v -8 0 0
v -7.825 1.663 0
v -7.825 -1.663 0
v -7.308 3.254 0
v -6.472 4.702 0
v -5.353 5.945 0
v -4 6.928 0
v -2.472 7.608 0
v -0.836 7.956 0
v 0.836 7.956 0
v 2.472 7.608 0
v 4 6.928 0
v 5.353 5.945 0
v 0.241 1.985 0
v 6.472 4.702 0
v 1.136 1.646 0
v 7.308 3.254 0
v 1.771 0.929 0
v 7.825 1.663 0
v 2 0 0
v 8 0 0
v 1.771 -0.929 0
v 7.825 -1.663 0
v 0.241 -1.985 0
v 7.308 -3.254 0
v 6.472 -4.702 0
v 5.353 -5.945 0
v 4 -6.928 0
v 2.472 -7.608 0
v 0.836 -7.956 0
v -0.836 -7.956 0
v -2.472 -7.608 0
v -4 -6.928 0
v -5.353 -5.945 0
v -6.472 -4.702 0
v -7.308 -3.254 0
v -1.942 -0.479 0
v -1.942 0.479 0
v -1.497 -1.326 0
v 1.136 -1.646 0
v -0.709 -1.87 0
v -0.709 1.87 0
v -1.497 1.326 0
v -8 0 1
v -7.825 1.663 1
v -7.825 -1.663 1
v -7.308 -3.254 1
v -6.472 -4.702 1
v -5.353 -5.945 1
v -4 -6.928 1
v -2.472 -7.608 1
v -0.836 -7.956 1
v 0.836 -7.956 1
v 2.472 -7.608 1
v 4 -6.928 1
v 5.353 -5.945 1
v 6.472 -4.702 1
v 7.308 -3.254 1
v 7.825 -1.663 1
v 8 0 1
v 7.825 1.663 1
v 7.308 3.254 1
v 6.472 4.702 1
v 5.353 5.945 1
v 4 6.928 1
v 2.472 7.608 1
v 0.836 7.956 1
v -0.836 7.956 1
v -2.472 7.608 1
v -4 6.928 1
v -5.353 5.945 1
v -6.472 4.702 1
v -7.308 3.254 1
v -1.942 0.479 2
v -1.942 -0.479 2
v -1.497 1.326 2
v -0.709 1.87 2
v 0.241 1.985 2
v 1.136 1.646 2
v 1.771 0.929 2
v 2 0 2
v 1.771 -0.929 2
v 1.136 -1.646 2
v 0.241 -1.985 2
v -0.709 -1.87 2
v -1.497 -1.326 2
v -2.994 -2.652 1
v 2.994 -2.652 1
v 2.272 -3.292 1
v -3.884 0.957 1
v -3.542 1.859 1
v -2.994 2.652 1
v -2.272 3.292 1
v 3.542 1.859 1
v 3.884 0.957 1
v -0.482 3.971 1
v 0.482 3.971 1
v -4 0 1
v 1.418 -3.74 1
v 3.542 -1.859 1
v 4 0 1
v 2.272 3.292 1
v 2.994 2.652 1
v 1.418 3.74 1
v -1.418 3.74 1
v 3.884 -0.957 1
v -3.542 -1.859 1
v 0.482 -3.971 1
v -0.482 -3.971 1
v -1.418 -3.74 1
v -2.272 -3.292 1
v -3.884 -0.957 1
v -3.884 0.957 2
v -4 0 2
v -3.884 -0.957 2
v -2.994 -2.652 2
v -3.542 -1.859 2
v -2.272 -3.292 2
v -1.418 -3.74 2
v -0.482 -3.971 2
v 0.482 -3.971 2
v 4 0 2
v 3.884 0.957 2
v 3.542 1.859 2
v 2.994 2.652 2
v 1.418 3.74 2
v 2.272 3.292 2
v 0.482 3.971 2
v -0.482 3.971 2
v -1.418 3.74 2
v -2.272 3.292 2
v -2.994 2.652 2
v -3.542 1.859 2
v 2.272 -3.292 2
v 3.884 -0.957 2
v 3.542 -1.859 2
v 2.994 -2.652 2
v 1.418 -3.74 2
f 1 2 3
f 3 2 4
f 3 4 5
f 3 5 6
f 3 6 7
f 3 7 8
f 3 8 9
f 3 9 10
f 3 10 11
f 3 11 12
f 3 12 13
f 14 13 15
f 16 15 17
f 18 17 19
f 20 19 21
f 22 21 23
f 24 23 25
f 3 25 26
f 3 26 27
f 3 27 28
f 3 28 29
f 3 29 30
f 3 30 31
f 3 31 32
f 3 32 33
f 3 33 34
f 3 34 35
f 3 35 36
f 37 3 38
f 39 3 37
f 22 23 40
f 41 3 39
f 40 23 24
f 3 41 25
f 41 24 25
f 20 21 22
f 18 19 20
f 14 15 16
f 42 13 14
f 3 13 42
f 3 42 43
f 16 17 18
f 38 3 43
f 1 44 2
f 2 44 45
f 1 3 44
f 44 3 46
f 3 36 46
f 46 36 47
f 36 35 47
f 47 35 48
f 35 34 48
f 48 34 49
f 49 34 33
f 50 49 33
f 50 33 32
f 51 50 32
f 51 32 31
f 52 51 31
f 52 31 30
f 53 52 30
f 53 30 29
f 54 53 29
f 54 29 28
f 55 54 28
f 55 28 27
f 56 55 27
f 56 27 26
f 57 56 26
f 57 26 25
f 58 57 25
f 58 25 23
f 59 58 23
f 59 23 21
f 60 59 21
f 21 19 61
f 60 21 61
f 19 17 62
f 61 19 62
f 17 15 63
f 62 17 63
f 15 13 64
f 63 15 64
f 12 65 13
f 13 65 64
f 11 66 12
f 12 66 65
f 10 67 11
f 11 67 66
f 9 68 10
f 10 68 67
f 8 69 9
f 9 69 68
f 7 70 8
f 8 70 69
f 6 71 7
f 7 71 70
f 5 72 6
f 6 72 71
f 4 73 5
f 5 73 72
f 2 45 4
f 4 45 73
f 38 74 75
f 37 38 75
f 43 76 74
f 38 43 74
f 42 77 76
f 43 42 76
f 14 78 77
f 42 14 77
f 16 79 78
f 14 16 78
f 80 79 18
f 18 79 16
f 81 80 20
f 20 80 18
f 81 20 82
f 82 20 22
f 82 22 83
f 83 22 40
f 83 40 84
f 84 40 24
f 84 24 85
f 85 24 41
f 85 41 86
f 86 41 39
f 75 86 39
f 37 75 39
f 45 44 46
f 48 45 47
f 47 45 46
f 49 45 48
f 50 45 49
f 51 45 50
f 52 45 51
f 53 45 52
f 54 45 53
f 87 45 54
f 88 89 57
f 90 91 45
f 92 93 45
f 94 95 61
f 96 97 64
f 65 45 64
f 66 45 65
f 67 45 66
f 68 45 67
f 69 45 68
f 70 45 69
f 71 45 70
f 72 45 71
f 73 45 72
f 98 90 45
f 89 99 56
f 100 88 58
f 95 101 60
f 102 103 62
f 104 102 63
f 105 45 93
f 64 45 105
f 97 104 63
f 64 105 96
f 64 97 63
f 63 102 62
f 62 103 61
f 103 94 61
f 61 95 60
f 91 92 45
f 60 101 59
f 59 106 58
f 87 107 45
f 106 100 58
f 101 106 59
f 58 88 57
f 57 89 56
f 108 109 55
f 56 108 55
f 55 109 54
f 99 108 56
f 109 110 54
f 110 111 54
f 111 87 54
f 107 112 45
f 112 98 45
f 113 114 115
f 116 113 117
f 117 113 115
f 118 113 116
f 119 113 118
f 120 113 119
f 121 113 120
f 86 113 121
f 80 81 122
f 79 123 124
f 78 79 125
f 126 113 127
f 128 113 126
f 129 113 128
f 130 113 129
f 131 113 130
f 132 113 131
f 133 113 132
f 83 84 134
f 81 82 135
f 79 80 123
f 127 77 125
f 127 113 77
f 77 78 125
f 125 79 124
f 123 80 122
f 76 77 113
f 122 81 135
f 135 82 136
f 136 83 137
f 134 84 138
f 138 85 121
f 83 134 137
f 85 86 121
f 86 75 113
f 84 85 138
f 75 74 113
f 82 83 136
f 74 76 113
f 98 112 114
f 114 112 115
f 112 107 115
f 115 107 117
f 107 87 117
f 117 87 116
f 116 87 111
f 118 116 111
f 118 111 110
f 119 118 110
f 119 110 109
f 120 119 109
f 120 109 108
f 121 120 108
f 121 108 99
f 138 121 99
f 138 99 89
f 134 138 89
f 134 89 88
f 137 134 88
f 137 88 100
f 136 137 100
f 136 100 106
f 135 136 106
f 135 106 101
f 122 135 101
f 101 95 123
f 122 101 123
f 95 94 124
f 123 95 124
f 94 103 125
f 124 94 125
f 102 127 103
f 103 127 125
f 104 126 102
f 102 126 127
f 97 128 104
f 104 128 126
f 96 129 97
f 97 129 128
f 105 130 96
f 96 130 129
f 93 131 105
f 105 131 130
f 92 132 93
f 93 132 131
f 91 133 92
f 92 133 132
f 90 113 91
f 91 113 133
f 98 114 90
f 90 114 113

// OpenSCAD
od = 16;
id = 4;
height=2;


difference(){
	union(){
		cylinder(h=height-1,r=od/2,center=false,$fs=1);
		cylinder(h=height,r=id,center=false,$fs=1);
	}
	cylinder(h=height,r=id/2,center=false,$fs=1);
}
